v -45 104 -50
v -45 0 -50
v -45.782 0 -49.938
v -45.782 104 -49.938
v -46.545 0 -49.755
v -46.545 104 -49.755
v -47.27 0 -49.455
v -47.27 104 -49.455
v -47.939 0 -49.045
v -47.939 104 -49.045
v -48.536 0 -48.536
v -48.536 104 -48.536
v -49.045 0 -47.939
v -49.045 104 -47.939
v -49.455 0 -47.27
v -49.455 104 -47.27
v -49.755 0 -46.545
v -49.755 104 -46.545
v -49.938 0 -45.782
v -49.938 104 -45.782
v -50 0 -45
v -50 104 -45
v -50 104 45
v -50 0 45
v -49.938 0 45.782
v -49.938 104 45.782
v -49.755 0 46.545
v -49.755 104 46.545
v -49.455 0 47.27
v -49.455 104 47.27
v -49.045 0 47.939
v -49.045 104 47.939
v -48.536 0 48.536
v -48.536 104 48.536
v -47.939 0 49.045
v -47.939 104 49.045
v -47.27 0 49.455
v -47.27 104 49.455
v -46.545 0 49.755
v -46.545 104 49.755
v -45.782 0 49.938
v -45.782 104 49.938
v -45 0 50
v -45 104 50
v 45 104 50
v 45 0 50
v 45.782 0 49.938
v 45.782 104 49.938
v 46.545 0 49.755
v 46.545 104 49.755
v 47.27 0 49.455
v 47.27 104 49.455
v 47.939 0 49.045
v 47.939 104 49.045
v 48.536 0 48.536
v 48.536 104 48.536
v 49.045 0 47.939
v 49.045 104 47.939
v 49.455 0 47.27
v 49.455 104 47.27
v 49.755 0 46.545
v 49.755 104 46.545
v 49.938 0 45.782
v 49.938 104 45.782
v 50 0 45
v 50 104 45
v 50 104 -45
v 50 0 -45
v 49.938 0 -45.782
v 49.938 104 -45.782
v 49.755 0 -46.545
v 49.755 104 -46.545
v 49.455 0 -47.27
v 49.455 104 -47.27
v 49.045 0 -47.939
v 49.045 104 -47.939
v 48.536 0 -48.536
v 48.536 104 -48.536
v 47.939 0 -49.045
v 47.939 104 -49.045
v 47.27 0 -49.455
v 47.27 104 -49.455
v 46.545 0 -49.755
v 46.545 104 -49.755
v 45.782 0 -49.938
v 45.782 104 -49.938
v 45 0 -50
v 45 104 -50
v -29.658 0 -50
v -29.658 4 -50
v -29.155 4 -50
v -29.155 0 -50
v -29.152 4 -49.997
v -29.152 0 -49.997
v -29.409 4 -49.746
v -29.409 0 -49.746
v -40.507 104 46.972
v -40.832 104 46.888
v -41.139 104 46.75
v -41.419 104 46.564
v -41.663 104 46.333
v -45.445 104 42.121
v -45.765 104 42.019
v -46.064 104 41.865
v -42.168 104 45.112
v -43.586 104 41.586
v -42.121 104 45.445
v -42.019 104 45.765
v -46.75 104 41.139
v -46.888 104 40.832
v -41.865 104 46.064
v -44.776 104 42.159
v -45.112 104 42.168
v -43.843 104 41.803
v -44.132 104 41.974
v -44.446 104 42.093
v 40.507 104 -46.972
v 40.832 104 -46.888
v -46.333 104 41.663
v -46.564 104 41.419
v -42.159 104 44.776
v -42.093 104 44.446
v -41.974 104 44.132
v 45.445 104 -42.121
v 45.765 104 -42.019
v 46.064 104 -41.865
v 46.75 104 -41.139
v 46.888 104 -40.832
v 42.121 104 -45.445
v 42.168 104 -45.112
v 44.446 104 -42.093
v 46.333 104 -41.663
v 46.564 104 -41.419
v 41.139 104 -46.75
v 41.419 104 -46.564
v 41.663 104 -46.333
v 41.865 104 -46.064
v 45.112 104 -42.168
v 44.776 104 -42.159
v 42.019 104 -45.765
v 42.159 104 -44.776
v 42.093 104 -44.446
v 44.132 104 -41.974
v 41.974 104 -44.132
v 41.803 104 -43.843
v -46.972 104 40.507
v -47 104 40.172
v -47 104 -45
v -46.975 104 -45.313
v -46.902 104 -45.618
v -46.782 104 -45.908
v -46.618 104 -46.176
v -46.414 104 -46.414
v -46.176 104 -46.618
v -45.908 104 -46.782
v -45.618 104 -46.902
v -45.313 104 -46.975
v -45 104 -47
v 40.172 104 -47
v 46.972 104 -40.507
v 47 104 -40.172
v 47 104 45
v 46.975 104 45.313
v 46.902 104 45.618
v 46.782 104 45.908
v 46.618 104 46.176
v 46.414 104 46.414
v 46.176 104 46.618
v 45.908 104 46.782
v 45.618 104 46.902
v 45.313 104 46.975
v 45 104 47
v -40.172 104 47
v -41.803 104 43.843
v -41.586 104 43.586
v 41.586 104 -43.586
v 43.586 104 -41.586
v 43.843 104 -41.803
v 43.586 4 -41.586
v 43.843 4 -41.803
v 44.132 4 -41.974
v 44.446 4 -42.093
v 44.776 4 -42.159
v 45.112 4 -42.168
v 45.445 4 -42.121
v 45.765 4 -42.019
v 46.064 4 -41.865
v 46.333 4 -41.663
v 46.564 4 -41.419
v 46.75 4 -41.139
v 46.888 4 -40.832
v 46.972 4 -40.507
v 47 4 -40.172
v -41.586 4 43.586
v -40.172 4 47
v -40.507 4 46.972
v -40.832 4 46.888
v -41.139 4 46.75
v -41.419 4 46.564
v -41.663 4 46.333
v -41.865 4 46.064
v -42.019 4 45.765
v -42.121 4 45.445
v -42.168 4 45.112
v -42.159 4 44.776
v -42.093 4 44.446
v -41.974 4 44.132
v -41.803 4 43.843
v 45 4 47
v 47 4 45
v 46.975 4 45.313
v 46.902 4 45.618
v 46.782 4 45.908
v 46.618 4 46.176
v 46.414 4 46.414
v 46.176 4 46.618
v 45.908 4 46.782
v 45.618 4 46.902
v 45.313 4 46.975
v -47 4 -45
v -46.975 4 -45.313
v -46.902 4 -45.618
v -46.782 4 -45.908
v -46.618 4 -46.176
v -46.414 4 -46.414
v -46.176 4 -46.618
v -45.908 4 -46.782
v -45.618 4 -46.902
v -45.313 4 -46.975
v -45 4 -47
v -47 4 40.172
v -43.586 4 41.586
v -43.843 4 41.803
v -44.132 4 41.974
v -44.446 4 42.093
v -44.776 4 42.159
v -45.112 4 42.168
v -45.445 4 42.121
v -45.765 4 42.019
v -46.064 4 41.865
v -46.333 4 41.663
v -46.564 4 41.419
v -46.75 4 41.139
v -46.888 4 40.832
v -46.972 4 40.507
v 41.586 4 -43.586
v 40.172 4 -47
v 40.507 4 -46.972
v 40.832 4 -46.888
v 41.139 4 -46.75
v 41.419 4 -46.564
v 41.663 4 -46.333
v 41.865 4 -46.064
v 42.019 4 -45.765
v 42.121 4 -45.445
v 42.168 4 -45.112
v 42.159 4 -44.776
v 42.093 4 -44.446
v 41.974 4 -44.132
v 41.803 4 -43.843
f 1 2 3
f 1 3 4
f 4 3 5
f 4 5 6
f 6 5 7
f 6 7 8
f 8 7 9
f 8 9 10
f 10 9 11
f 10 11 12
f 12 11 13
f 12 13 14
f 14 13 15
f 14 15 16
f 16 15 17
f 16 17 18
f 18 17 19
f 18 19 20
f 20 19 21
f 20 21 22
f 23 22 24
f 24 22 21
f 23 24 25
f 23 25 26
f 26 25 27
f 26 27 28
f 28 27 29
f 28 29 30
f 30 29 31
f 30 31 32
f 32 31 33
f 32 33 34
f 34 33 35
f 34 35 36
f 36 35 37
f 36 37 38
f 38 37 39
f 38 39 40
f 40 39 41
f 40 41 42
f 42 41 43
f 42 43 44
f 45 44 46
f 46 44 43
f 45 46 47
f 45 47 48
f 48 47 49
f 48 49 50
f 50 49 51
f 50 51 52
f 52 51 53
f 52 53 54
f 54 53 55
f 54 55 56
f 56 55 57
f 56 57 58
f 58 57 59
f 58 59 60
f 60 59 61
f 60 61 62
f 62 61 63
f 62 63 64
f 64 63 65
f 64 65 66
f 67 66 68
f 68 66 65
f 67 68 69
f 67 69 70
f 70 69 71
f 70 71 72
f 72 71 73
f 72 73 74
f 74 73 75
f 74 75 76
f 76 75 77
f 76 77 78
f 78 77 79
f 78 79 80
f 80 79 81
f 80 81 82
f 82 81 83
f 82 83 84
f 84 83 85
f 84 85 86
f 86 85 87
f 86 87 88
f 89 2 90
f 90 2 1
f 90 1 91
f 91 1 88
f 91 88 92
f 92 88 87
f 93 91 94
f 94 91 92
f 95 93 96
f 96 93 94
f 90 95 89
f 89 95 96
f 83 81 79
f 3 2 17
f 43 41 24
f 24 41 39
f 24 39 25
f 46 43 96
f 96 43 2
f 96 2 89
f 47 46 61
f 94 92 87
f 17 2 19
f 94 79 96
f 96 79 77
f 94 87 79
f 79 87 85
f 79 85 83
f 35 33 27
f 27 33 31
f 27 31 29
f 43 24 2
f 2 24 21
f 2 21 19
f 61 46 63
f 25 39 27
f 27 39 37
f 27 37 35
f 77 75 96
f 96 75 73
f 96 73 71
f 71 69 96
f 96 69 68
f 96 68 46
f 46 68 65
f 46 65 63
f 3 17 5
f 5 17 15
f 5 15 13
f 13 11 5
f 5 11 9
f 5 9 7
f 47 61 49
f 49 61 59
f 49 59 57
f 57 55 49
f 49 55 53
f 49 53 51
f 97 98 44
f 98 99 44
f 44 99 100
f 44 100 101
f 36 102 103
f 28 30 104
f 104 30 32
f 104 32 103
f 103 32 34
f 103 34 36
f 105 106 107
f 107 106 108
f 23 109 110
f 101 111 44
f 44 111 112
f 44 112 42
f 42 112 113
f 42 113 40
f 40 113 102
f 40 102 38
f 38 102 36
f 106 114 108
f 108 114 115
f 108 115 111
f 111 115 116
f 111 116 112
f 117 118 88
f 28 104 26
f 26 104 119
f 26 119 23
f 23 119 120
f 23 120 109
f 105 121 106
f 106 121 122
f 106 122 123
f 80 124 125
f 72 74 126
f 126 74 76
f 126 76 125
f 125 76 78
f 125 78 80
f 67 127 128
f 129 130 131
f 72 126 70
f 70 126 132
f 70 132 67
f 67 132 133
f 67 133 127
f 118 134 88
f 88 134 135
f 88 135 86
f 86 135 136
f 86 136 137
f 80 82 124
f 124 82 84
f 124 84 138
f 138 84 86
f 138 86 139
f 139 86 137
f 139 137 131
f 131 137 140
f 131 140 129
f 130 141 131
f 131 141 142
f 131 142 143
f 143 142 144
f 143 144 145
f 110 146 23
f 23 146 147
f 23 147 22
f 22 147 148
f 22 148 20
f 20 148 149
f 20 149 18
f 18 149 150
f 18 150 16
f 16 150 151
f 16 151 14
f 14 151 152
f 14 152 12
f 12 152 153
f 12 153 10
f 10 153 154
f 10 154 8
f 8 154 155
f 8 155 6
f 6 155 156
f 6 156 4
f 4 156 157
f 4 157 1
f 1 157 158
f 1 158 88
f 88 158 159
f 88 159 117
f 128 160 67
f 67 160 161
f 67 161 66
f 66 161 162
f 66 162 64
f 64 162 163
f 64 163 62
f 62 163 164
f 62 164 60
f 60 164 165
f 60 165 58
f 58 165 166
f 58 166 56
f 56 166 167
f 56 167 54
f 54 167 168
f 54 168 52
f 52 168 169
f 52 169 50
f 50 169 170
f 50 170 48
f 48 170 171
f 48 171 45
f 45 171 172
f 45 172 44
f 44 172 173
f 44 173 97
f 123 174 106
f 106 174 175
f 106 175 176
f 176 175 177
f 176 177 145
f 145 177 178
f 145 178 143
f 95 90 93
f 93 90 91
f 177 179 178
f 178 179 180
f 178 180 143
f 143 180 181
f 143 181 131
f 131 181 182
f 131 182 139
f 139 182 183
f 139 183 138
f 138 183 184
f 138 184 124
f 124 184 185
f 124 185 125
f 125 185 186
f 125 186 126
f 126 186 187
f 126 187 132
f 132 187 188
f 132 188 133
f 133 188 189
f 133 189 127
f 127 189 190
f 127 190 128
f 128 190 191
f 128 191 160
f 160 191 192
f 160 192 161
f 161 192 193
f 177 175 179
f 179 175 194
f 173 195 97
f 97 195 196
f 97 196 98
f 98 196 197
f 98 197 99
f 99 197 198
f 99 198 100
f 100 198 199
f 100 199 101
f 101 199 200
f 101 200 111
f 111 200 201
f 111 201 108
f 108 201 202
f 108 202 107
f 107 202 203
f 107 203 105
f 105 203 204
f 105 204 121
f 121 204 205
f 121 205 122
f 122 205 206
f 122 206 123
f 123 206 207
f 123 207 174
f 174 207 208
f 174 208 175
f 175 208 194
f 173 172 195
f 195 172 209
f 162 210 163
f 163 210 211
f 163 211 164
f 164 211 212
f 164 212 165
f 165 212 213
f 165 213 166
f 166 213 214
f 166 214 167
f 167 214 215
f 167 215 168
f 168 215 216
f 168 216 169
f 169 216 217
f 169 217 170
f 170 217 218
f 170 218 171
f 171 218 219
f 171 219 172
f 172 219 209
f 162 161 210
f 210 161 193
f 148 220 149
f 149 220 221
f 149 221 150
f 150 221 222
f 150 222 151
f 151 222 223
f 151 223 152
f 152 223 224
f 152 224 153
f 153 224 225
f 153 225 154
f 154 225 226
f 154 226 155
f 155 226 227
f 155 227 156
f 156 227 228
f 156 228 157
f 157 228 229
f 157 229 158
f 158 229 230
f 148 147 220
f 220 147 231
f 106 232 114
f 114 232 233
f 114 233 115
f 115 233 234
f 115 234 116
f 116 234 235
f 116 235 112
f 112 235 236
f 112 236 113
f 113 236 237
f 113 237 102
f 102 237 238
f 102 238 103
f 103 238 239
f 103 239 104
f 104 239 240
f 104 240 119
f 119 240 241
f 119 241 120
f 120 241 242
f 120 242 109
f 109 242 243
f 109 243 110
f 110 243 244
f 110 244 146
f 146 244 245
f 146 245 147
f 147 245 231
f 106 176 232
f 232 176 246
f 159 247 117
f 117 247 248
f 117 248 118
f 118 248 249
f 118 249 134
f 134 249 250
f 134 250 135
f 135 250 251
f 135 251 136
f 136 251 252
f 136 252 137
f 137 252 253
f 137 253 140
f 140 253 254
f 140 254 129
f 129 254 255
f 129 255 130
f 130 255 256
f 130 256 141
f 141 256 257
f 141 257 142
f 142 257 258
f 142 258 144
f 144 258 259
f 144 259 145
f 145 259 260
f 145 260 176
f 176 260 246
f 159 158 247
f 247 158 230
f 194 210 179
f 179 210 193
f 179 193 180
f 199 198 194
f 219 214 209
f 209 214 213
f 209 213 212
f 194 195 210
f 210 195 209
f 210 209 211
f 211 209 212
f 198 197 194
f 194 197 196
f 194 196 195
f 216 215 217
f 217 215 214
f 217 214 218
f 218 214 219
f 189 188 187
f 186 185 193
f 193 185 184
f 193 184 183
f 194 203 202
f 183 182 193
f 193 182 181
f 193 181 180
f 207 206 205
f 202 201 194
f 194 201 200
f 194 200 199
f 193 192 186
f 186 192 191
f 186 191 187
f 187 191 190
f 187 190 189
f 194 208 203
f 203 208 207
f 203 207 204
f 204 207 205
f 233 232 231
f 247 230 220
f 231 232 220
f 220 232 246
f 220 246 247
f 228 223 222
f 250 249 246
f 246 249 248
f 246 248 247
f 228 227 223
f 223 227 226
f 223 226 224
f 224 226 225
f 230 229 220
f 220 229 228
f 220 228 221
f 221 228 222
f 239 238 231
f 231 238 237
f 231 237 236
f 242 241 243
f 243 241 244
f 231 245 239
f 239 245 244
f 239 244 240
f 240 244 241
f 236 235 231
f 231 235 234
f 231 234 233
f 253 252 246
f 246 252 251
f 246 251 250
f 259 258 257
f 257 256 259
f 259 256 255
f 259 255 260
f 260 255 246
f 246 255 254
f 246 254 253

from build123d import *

# Parameters (mm, degrees)
EXTRUDE_1_DEPTH = 4
EXTRUDE_3_DEPTH = 100


with BuildPart() as part:
    # 草图1 → 凸台-拉伸1 (new body)
    with BuildSketch(Plane(origin=(0, 0, 0), x_dir=(1, 0, 0), z_dir=(0, 1, 0))):
        with BuildLine():
            ThreePointArc((50, 45), (48.535533906, 48.535533906), (45, 50))
            Line((45, 50), (-29.154564109, 50))
            Line((-29.154564109, 50), (-29.151954818, 49.997335451))
            Line((-29.151954818, 49.997335451), (-29.408928245, 49.745691122))
            Line((-29.408928245, 49.745691122), (-29.657963283, 50))
            Line((-29.657963283, 50), (-45, 50))
            ThreePointArc((-45, 50), (-48.535533906, 48.535533906), (-50, 45))
            Line((-50, 45), (-50, -45))
            ThreePointArc((-50, -45), (-48.535533906, -48.535533906), (-45, -50))
            Line((-45, -50), (45, -50))
            ThreePointArc((45, -50), (48.535533906, -48.535533906), (50, -45))
            Line((50, -45), (50, 45))
        make_face()
    extrude(amount=EXTRUDE_1_DEPTH)

    # 草图2 → 凸台-拉伸3 (add)
    with BuildSketch(Plane(origin=(0, 4, 0), x_dir=(1, 0, 0), z_dir=(0, 1, 0))):
        with BuildLine():
            Line((45, 50), (-45, 50))
            ThreePointArc((-45, 50), (-48.535533906, 48.535533906), (-50, 45))
            Line((-50, 45), (-50, -45))
            ThreePointArc((-50, -45), (-48.535533906, -48.535533906), (-45, -50))
            Line((-45, -50), (45, -50))
            ThreePointArc((45, -50), (48.535533906, -48.535533906), (50, -45))
            Line((50, -45), (50, 45))
            ThreePointArc((50, 45), (48.535533906, 48.535533906), (45, 50))
        make_face()
        with BuildLine():
            Line((-47, 45), (-47, -40.171572875))
            ThreePointArc((-47, -40.171572875), (-45.765366865, -42.01933194), (-43.585786438, -41.585786438))
            Line((-43.585786438, -41.585786438), (41.585786438, 43.585786438))
            ThreePointArc((41.585786438, 43.585786438), (42.01933194, 45.765366865), (40.171572875, 47))
            Line((40.171572875, 47), (-45, 47))
            ThreePointArc((-45, 47), (-46.414213562, 46.414213562), (-47, 45))
        make_face(mode=Mode.SUBTRACT)
        with BuildLine():
            Line((-40.171572875, -47), (45, -47))
            ThreePointArc((45, -47), (46.414213562, -46.414213562), (47, -45))
            Line((47, -45), (47, 40.171572875))
            ThreePointArc((47, 40.171572875), (45.765366865, 42.01933194), (43.585786438, 41.585786438))
            Line((43.585786438, 41.585786438), (-41.585786438, -43.585786438))
            ThreePointArc((-41.585786438, -43.585786438), (-42.01933194, -45.765366865), (-40.171572875, -47))
        make_face(mode=Mode.SUBTRACT)
    extrude(amount=EXTRUDE_3_DEPTH)


solid = part.part
